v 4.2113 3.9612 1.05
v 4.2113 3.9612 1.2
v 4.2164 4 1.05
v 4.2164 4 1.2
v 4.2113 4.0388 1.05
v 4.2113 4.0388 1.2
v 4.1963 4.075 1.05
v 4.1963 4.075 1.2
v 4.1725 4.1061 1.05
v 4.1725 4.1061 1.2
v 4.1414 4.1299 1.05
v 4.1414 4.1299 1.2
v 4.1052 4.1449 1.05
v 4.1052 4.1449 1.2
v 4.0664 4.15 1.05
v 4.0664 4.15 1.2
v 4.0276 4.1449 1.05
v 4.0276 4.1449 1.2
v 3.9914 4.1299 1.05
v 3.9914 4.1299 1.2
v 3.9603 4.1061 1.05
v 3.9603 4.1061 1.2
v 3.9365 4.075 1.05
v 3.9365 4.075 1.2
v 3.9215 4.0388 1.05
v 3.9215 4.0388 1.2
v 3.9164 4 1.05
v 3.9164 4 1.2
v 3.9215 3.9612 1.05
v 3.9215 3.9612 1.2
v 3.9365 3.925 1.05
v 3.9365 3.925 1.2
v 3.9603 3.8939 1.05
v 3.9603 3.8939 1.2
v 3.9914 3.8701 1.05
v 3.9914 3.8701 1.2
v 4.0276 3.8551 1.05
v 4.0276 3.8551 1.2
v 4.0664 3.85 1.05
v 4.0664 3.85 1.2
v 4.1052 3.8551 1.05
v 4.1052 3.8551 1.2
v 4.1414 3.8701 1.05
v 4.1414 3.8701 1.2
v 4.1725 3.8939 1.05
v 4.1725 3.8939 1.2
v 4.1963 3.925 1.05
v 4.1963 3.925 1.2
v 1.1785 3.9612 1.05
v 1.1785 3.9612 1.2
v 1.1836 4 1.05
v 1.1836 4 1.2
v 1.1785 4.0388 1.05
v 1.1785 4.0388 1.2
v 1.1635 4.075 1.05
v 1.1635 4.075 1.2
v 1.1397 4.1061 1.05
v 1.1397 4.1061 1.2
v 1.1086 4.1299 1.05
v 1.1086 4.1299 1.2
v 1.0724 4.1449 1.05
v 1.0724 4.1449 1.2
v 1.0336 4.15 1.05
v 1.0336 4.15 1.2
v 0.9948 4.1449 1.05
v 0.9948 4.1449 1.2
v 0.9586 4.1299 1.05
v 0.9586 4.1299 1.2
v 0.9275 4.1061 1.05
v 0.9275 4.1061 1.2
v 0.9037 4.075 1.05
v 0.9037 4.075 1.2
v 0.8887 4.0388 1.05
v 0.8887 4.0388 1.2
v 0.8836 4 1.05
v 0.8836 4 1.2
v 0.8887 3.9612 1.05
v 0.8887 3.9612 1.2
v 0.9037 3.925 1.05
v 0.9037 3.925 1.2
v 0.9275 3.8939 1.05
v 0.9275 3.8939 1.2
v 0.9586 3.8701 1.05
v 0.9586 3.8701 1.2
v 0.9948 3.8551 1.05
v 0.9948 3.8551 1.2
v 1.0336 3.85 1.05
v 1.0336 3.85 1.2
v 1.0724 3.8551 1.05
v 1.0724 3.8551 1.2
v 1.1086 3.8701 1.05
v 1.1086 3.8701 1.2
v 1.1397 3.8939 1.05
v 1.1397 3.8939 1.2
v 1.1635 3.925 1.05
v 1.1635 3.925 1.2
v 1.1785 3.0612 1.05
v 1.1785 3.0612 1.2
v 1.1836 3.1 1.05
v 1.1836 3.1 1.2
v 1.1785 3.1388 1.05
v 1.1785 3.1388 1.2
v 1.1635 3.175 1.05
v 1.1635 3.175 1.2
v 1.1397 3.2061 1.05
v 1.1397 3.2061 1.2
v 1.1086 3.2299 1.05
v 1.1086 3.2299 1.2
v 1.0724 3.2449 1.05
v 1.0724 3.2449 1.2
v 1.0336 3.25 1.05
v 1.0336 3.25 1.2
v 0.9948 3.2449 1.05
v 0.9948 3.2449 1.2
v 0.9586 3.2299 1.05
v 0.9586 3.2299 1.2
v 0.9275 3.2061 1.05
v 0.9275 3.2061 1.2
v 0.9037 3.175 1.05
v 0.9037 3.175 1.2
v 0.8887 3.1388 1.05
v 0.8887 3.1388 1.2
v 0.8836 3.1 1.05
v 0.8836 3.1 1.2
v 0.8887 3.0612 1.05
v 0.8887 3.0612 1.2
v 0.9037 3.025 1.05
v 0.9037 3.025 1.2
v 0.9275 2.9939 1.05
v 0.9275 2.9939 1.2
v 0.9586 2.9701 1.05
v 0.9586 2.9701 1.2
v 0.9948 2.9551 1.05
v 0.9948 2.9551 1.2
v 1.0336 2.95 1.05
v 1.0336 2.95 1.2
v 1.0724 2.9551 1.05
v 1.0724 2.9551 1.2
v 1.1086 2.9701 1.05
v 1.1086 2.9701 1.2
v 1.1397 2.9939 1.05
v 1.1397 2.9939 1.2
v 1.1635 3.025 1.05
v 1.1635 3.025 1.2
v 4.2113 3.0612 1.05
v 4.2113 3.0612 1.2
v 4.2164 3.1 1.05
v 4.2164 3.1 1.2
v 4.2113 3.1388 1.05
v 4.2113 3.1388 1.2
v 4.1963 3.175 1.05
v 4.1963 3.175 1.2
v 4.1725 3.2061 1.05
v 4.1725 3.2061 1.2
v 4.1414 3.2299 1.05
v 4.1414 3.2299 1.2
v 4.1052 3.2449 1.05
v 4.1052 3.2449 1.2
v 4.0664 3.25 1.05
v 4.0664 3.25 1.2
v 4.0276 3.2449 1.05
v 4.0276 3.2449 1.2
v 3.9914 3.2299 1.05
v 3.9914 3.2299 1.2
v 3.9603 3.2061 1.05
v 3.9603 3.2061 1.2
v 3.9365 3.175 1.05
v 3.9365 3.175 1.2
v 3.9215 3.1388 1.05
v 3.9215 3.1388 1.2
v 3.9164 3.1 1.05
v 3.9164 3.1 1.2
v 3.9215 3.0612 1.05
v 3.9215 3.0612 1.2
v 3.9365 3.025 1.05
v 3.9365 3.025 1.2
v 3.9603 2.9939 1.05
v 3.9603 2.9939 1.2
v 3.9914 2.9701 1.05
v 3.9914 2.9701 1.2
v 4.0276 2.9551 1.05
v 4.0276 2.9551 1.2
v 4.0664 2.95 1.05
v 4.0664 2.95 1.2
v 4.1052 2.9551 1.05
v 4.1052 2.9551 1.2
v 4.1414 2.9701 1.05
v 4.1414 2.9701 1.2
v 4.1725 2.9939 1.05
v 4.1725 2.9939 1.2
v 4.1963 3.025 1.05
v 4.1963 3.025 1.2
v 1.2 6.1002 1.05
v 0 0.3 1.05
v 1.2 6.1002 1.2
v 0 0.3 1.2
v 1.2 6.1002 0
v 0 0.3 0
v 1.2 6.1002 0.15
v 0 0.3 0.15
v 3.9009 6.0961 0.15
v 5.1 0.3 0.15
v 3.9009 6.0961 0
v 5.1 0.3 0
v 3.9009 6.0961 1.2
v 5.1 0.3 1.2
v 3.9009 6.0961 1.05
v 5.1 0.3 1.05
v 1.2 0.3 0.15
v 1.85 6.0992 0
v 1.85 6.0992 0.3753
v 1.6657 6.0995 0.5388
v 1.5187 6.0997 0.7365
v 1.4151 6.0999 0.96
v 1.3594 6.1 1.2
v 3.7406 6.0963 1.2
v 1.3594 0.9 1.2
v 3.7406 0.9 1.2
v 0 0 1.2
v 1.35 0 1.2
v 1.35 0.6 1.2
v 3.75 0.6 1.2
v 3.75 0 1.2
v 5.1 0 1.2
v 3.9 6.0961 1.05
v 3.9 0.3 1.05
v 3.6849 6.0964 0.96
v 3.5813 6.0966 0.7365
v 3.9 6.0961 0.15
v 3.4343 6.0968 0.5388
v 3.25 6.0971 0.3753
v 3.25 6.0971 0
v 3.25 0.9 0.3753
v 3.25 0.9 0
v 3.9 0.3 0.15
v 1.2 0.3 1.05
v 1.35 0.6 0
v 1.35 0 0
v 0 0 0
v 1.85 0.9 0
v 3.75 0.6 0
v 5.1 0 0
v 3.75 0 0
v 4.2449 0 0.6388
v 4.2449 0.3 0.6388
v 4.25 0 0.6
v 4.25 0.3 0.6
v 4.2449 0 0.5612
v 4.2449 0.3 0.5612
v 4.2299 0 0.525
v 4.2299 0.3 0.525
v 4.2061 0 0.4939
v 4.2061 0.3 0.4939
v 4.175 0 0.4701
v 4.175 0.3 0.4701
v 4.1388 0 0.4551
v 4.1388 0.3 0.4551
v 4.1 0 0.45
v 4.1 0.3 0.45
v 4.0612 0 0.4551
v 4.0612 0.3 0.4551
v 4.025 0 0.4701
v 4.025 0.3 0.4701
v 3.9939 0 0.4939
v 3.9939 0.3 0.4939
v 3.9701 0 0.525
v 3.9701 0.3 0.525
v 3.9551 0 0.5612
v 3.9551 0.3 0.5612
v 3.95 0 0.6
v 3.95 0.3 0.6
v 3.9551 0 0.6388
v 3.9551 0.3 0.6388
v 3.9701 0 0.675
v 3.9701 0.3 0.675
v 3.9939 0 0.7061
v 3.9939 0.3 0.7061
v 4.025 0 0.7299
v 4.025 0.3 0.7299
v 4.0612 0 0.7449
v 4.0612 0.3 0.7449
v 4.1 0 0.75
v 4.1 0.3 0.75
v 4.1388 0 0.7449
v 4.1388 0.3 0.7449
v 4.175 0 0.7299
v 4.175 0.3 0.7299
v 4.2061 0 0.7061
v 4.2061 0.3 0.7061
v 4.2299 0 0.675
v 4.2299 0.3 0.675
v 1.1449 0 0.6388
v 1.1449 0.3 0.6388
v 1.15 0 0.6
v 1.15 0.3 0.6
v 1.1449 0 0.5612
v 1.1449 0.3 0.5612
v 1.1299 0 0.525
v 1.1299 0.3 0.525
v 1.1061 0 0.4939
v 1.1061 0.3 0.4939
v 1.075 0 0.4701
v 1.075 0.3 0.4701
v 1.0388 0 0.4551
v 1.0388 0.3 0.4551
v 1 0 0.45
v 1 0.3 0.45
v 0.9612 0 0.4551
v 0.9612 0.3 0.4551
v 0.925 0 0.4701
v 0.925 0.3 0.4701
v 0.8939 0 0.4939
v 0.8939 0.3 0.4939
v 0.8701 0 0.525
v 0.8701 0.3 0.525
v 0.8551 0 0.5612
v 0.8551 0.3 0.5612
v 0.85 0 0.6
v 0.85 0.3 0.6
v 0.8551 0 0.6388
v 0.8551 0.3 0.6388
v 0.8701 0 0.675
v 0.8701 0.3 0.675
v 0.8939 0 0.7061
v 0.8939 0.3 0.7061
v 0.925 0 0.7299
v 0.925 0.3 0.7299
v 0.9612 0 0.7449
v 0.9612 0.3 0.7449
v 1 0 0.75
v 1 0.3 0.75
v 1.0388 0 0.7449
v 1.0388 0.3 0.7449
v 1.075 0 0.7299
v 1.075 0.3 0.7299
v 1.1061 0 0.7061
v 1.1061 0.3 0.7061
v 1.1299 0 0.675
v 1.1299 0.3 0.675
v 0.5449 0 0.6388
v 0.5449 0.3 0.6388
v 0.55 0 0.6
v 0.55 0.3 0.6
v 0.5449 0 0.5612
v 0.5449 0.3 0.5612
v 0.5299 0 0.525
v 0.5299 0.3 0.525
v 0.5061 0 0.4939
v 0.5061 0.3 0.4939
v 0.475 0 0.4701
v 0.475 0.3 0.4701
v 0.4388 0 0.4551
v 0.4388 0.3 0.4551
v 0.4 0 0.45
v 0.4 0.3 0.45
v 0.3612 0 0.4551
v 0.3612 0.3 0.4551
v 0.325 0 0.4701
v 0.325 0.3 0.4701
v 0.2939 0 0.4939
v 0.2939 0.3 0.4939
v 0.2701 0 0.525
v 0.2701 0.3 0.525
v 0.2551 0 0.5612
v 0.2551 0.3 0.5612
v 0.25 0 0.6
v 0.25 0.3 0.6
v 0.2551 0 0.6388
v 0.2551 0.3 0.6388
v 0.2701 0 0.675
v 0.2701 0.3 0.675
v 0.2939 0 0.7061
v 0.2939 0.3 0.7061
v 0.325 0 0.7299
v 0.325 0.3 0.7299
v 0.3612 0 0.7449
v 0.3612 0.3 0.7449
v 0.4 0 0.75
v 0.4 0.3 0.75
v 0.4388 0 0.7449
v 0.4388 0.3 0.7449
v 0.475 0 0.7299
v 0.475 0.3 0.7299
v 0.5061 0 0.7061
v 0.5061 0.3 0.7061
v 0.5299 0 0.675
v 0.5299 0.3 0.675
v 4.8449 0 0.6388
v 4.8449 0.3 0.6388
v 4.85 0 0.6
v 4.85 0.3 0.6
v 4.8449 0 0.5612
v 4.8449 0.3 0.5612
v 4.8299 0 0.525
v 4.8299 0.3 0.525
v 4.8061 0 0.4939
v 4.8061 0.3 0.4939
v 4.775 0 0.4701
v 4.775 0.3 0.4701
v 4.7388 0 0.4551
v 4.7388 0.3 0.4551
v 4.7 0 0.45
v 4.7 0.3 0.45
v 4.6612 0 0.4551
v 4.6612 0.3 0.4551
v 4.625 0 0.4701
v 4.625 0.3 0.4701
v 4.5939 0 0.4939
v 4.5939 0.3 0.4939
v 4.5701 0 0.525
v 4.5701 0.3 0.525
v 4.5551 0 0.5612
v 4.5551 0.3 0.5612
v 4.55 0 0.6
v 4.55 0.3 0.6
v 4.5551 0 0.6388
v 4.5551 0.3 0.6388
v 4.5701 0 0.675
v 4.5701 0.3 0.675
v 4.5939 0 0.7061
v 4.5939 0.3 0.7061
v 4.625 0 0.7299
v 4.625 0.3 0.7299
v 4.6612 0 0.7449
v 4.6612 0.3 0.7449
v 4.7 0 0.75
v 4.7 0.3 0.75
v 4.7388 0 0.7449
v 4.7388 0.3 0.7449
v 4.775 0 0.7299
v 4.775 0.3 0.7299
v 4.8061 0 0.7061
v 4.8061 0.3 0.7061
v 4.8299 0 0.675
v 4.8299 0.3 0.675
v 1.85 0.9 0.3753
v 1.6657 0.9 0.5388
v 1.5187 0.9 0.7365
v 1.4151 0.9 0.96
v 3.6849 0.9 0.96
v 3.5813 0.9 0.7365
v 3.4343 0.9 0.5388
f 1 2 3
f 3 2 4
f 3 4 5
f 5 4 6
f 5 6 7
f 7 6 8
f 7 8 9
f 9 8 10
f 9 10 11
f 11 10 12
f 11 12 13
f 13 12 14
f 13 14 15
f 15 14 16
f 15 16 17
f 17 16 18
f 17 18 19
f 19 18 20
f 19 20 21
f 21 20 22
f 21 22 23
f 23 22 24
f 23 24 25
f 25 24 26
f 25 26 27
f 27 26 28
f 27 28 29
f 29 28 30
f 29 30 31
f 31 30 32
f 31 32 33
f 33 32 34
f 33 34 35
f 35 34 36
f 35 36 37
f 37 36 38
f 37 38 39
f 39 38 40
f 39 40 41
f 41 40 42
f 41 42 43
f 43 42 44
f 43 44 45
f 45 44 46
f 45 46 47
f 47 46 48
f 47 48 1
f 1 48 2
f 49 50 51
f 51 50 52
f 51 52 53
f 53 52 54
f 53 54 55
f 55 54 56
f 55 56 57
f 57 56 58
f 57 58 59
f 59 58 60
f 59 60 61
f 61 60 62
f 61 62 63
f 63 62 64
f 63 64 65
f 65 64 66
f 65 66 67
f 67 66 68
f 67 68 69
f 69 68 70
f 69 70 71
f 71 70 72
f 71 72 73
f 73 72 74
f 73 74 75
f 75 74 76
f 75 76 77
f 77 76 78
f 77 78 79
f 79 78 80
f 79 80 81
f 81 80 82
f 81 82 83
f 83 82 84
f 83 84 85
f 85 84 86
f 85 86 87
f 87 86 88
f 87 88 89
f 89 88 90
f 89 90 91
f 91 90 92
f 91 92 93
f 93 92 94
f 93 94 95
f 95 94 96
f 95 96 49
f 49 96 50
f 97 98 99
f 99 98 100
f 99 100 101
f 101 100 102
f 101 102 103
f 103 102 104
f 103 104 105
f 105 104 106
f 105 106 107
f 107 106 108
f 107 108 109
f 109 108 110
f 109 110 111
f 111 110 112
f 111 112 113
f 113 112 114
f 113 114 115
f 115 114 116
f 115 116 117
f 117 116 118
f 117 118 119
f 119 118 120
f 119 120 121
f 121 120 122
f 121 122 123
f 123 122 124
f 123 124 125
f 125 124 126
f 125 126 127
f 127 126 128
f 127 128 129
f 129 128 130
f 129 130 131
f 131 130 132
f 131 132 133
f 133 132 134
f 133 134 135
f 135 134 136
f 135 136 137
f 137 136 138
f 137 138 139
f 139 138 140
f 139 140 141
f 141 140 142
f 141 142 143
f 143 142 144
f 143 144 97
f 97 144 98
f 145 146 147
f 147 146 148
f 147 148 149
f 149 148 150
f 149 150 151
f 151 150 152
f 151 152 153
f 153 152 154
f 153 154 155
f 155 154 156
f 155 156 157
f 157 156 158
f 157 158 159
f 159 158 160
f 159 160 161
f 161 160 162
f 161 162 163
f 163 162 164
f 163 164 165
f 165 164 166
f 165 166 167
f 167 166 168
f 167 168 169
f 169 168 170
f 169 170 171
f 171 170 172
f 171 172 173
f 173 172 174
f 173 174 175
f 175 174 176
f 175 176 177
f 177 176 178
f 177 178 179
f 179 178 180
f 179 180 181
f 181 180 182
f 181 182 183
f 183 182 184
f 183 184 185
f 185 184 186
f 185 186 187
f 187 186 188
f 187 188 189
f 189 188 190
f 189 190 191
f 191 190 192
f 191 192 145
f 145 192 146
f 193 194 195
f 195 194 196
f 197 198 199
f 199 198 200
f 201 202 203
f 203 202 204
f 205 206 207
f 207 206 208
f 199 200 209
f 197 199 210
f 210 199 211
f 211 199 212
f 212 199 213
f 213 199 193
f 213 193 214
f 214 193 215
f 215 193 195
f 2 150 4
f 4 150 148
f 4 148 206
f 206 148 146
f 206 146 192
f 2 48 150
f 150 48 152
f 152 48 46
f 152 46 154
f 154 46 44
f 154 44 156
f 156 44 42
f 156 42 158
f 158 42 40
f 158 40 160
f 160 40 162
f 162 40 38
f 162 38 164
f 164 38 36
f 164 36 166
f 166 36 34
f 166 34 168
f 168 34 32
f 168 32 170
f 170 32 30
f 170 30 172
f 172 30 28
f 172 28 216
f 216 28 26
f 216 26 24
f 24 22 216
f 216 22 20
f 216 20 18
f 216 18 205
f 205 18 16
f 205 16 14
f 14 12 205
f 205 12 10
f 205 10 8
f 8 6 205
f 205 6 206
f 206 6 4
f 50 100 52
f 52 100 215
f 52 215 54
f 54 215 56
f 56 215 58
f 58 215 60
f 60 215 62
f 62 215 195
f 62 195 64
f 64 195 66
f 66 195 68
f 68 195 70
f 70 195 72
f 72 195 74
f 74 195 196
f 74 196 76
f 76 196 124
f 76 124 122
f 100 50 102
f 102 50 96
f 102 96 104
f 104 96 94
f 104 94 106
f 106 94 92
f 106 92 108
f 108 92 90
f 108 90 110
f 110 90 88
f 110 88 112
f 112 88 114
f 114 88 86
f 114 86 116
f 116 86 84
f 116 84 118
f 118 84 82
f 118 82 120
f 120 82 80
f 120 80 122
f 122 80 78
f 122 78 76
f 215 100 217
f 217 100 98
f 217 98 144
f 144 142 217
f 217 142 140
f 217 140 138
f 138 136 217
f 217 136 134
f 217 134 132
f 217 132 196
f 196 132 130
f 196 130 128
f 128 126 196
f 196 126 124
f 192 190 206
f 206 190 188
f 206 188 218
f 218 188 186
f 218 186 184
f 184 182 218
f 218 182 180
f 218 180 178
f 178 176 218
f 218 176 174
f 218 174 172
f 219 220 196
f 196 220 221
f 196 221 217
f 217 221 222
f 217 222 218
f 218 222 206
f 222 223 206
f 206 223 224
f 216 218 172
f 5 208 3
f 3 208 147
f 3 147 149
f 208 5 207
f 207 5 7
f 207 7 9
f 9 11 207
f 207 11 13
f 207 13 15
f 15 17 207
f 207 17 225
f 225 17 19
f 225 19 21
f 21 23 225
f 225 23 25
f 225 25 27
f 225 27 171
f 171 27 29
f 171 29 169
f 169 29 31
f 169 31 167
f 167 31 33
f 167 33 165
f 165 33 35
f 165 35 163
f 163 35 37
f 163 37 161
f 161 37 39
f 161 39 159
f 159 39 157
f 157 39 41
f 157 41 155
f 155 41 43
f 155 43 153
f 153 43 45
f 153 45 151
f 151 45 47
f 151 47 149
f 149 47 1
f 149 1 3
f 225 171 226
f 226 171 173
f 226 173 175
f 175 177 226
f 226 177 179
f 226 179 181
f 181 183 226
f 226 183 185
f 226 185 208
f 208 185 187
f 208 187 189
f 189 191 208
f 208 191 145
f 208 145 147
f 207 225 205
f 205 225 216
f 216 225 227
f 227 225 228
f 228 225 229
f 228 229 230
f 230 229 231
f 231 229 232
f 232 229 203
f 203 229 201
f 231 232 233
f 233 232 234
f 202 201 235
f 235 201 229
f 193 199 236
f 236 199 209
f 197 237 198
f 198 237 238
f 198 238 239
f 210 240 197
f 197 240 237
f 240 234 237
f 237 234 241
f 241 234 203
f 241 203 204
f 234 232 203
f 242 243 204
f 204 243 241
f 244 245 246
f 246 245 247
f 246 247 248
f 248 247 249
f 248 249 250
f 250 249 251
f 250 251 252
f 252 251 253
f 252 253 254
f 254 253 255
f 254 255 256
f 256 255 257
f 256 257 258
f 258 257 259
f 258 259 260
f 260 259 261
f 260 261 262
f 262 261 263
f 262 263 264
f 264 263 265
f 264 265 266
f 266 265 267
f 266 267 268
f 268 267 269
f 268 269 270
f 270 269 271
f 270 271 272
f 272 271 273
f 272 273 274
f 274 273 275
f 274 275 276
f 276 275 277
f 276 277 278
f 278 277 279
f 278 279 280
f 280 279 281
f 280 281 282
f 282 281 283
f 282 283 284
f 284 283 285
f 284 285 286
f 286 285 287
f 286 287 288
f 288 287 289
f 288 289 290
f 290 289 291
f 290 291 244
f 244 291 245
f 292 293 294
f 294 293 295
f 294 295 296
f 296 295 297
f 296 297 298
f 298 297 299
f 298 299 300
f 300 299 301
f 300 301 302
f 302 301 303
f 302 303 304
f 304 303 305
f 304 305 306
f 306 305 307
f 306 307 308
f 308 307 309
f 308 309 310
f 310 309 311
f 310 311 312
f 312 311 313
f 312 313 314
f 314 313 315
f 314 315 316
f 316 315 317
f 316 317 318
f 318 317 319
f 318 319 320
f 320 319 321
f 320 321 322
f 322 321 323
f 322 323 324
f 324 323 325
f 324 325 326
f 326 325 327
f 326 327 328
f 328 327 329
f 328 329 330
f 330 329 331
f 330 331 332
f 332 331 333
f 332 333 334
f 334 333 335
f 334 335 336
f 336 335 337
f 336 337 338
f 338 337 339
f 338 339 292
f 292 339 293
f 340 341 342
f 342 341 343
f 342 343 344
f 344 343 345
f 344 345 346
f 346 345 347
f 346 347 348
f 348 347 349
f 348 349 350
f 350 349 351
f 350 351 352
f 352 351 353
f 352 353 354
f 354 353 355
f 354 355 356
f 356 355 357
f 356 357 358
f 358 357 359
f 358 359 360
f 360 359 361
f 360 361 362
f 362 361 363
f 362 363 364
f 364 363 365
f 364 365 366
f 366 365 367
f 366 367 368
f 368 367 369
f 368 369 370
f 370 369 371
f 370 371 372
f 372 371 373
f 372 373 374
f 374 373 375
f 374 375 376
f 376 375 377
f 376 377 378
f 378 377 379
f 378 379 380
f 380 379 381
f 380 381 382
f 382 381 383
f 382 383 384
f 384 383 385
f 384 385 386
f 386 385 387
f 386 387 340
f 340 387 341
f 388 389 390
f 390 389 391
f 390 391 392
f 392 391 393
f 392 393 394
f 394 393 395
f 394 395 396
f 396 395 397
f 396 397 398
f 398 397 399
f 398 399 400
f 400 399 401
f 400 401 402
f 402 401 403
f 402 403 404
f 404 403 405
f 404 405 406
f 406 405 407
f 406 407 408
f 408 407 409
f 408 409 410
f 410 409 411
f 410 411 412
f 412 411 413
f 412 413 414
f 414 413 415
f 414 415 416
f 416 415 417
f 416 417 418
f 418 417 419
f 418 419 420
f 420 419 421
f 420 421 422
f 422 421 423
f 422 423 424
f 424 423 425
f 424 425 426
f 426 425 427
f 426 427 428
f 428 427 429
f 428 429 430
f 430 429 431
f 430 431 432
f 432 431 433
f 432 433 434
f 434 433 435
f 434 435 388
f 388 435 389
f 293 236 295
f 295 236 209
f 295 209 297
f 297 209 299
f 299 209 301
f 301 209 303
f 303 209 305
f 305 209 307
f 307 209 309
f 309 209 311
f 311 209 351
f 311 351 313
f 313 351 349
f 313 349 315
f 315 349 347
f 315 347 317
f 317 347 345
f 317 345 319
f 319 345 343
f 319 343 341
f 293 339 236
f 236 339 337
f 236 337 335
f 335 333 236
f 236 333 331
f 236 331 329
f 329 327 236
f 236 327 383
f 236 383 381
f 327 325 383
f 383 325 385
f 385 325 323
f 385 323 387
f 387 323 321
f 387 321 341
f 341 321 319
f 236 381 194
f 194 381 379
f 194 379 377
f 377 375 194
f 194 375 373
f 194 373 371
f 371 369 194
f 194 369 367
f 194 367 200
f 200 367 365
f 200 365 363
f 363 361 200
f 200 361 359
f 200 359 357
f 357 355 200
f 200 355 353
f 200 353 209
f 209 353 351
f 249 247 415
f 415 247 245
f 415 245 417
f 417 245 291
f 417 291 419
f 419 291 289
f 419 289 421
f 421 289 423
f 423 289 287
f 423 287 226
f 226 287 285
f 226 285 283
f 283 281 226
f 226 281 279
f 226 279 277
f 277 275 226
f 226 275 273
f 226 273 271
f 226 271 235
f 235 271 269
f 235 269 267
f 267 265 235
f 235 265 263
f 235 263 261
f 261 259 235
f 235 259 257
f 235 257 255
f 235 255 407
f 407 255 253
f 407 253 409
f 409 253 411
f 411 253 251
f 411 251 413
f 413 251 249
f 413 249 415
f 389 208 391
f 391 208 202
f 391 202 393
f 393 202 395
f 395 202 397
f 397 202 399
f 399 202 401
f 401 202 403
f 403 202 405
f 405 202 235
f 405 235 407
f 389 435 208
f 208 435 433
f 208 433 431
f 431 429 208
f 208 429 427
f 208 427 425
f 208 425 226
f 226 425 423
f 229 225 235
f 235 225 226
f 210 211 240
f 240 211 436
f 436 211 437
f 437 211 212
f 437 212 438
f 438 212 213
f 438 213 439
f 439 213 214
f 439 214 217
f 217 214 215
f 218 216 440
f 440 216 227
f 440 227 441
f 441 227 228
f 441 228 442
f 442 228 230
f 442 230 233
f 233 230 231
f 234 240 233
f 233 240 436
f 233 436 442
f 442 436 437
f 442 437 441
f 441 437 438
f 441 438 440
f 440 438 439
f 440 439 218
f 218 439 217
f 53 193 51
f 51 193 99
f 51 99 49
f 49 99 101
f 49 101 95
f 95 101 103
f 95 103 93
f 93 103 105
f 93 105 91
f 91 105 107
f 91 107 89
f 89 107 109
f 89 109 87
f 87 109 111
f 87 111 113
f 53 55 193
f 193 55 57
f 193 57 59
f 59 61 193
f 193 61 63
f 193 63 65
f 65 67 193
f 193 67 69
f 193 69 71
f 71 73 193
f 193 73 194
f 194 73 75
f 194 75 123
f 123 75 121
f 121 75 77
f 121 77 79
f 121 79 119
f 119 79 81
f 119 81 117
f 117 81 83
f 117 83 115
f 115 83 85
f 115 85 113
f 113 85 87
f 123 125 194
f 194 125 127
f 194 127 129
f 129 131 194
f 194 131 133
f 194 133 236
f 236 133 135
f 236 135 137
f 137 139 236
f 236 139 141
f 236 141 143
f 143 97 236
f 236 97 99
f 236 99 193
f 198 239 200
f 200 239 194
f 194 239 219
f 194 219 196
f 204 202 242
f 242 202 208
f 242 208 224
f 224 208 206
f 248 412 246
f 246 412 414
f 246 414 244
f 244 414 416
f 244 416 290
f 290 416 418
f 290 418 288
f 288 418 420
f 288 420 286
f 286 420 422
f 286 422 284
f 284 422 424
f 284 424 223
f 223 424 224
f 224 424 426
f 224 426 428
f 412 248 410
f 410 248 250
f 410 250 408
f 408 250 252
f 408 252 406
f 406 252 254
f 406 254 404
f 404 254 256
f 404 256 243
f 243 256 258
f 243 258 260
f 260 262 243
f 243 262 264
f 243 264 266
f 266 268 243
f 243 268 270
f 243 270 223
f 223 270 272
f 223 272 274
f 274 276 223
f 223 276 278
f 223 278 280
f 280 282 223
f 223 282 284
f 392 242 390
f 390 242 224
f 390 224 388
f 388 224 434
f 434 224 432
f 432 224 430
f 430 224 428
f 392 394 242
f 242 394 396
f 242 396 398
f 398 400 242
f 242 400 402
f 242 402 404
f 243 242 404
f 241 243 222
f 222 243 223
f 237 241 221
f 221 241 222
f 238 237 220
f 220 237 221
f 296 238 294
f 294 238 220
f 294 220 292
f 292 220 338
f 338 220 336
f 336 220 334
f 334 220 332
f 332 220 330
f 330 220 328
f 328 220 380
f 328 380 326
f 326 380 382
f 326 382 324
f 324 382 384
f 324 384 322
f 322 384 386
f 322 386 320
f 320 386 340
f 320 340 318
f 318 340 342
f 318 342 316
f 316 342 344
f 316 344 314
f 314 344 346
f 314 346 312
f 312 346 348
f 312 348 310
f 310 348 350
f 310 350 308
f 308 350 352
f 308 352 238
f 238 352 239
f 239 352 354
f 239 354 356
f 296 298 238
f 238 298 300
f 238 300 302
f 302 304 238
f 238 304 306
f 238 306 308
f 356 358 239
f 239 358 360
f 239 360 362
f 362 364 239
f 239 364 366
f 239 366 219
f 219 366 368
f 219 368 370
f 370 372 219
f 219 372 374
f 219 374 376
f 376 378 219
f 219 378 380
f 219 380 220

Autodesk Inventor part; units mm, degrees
ref_plane "YZ Plane" through (0, 0, 0) normal (1, 0, 0) x (0, 1, 0)
ref_plane "XZ Plane" through (0, 0, 0) normal (0, 1, 0) x (-1, 0, 0)
ref_plane "XY Plane" through (0, 0, 0) normal (0, 0, 1) x (1, 0, 0)
sketch "Boceto1" plane through (0, 0, 0) normal (0, 0, 1) x (1, 0, 0)
  line L0 (0, 0) -> (0, 0.3)
  line L1 (1.35, 0.9) -> (1.35, 11.3)
  line L2 (1.35, 11.3) -> (0, 0.3)
  line L3 (3.75, 0.9) -> (3.75, 11.3)
  line L4 (3.75, 11.3) -> (5.1, 0.3)
  line L5 (5.1, 0) -> (5.1, 0.3)
  line L6 (1.35, 0.9) -> (3.75, 0.9)
  line L7 (3.75, 0.6) -> (1.35, 0.6)
  line L8 (3.75, 0.6) -> (3.75, 0)
  line L9 (1.35, 0.6) -> (1.35, 0)
  line L10 (0, 0) -> (1.35, 0)
  line L11 (3.75, 0) -> (5.1, 0)
  line L12 (1.35, 11.3) -> (1.85, 11.3)
  line L13 (1.85, 11.3) -> (1.85, 0.9)
  line L14 (3.75, 11.3) -> (3.25, 11.3)
  line L15 (3.25, 11.3) -> (3.25, 0.9)
extrude "Extrusión1" add sketch "Boceto1" along normal blind 1.2 contours L0 L2 L1 L6 L3 L4 L5 L11 L8 L7 L9 L10
sketch "Boceto2" plane through (1.35, 0.9, 0) normal (0, 1, 0) x (1, 0, 0)
  line L0 (2.55, 0) -> (-0.15, 0)
  line L1 (-0.15, 0) -> (-0.15, -1.2)
  line L2 (-0.15, -1.2) -> (2.55, -1.2)
  line L3 (2.55, -1.2) -> (2.55, 0)
  line L4 (0, 0) -> (0, -1.2)
  line L5 (2.4, 0) -> (2.4, -1.2)
  line L6 (-0.15, -1.2) -> (-1.35, -1.2)
  line L7 (-1.35, -1.2) -> (-1.35, 0)
  line L8 (-1.35, 0) -> (-0.15, 0)
  line L9 (-0.15, 0) -> (-0.15, -0.15)
  line L10 (-0.15, -0.15) -> (-1.35, -0.15)
  line L11 (-1.35, -1.05) -> (-0.15, -1.05)
  line L12 (2.55, -1.2) -> (3.75, -1.2)
  line L13 (3.75, -1.2) -> (3.75, 0)
  line L14 (3.75, 0) -> (2.55, 0)
  line L15 (2.55, -0.15) -> (3.75, -0.15)
  line L16 (3.75, -1.05) -> (2.55, -1.05)
  line L17 (2.4, 0) -> (1.9, 0)
  line L18 (1.9, 0) -> (1.9, -0.15)
  line L19 (0, 0) -> (0.5, 0)
  line L20 (0.5, 0) -> (0.5, -0.15)
  arc A0 (2.3906, -1.2) -> (1.9, -0.3753) centre (1.2, -1.35) ccw
  line L21 (0, -1.2) -> (0.0094, -1.2)
  line L22 (0.5, -0.15) -> (0.5, -0.3753)
  line L23 (1.9, -0.15) -> (1.9, -0.3753)
  line L24 (2.4, -1.2) -> (2.3906, -1.2)
  arc A1 (0.5, -0.3753) -> (0.0094, -1.2) centre (1.2, -1.35) ccw
  line L25 (0, 0) -> (-1.35, 0) projected
  line L26 (-1.35, 0) -> (-1.35, -1.2) projected
  line L27 (0, -1.2) -> (-1.35, -1.2) projected
  line L28 (0, 0) -> (0, -1.2) projected
  line L29 (3.75, 0) -> (2.4, 0) projected
  line L30 (2.4, 0) -> (2.4, -1.2) projected
  line L31 (3.75, -1.2) -> (2.4, -1.2) projected
  line L32 (3.75, 0) -> (3.75, -1.2) projected
  line L33 (2.4, 0) -> (0, 0) projected
  line L34 (0, 0) -> (0, -1.2) projected
  line L35 (2.4, -1.2) -> (0, -1.2) projected
  line L36 (2.4, 0) -> (2.4, -1.2) projected
extrude "Extrusión2" cut sketch "Boceto2" along normal blind 12 contours L15 L13 L16 L3 | L1 L11 L7 L10
sketch "Boceto3" plane through (1.35, 0.9, 0) normal (0, 1, 0) x (1, 0, 0)
  line L0 (2.55, 0) -> (-0.15, 0)
  line L1 (-0.15, 0) -> (-0.15, -1.2)
  line L2 (-0.15, -1.2) -> (2.55, -1.2)
  line L3 (2.55, -1.2) -> (2.55, 0)
  line L4 (0, 0) -> (0, -1.2)
  line L5 (2.4, 0) -> (2.4, -1.2)
  line L6 (-0.15, -1.2) -> (-1.35, -1.2)
  line L7 (-1.35, -1.2) -> (-1.35, 0)
  line L8 (-1.35, 0) -> (-0.15, 0)
  line L9 (-0.15, 0) -> (-0.15, -0.15)
  line L10 (-0.15, -0.15) -> (-1.35, -0.15)
  line L11 (-1.35, -1.05) -> (-0.15, -1.05)
  line L12 (2.55, -1.2) -> (3.75, -1.2)
  line L13 (3.75, -1.2) -> (3.75, 0)
  line L14 (3.75, 0) -> (2.55, 0)
  line L15 (2.55, -0.15) -> (3.75, -0.15)
  line L16 (3.75, -1.05) -> (2.55, -1.05)
  line L17 (2.4, 0) -> (1.9, 0)
  line L18 (1.9, 0) -> (1.9, -0.15)
  line L19 (0, 0) -> (0.5, 0)
  line L20 (0.5, 0) -> (0.5, -0.15)
  arc A0 (2.3906, -1.2) -> (1.9, -0.3753) centre (1.2, -1.35) ccw
  line L21 (0, -1.2) -> (0.0094, -1.2)
  line L22 (0.5, -0.15) -> (0.5, -0.3753)
  line L23 (1.9, -0.15) -> (1.9, -0.3753)
  line L24 (2.4, -1.2) -> (2.3906, -1.2)
  arc A1 (0.5, -0.3753) -> (0.0094, -1.2) centre (1.2, -1.35) ccw
  line L25 (0, 0) -> (-1.35, 0)
  line L26 (-1.35, 0) -> (-1.35, -1.2)
  line L27 (0, -1.2) -> (-1.35, -1.2)
  line L28 (0, 0) -> (0, -1.2)
  line L29 (3.75, 0) -> (2.4, 0)
  line L30 (2.4, 0) -> (2.4, -1.2)
  line L31 (3.75, -1.2) -> (2.4, -1.2)
  line L32 (3.75, 0) -> (3.75, -1.2)
  line L33 (2.4, 0) -> (0, 0)
  line L34 (0, 0) -> (0, -1.2)
  line L35 (2.4, -1.2) -> (0, -1.2)
  line L36 (2.4, 0) -> (2.4, -1.2)
extrude "Extrusión3" add sketch "Boceto3" along normal blind 10.4 contours L5 L2 A0 L23 L18 L0 | L20 L22 A1 L2 L4 L0
sketch "Boceto4" plane through (1.35, 11.3, 0) normal (0, 1, 0) x (1, 0, 0)
  line L0 (0, 0) -> (0, -1.2) projected
  line L1 (0, -1.2) -> (0.0094, -1.2) projected
  arc A0 (0.5, -0.3753) -> (0.0094, -1.2) centre (1.2, -1.35) ccw projected
  line L2 (0.5, -0.3753) -> (0.5, 0) projected
  line L3 (0.5, 0) -> (0, 0) projected
  line L4 (2.4, 0) -> (1.9, 0) projected
  line L5 (1.9, 0) -> (1.9, -0.3753) projected
  arc A1 (2.3906, -1.2) -> (1.9, -0.3753) centre (1.2, -1.35) ccw projected
  line L6 (2.3906, -1.2) -> (2.4, -1.2) projected
  line L7 (2.4, 0) -> (2.4, -1.2) projected
  line L8 (2.55, 0) -> (-0.15, 0)
  line L9 (-0.15, 0) -> (-0.15, -1.2)
  line L10 (-0.15, -1.2) -> (2.55, -1.2)
  line L11 (2.55, -1.2) -> (2.55, 0)
  line L12 (0, 0) -> (0, -1.2)
  line L13 (2.4, 0) -> (2.4, -1.2)
  line L14 (-0.15, -1.2) -> (-1.35, -1.2)
  line L15 (-1.35, -1.2) -> (-1.35, 0)
  line L16 (-1.35, 0) -> (-0.15, 0)
  line L17 (-0.15, 0) -> (-0.15, -0.15)
  line L18 (-0.15, -0.15) -> (-1.35, -0.15)
  line L19 (-1.35, -1.05) -> (-0.15, -1.05)
  line L20 (2.55, -1.2) -> (3.75, -1.2)
  line L21 (3.75, -1.2) -> (3.75, 0)
  line L22 (3.75, 0) -> (2.55, 0)
  line L23 (2.55, -0.15) -> (3.75, -0.15)
  line L24 (3.75, -1.05) -> (2.55, -1.05)
  line L25 (2.4, 0) -> (1.9, 0)
  line L26 (1.9, 0) -> (1.9, -0.15)
  line L27 (0, 0) -> (0.5, 0)
  line L28 (0.5, 0) -> (0.5, -0.15)
  arc A2 (2.3906, -1.2) -> (1.9, -0.3753) centre (1.2, -1.35) ccw
  line L29 (0, -1.2) -> (0.0094, -1.2)
  line L30 (0.5, -0.15) -> (0.5, -0.3753)
  line L31 (1.9, -0.15) -> (1.9, -0.3753)
  line L32 (2.4, -1.2) -> (2.3906, -1.2)
  arc A3 (0.5, -0.3753) -> (0.0094, -1.2) centre (1.2, -1.35) ccw
  point P0 (-1.35, 0)
extrude "Extrusión4" add sketch "Boceto4" against normal blind 10.4 contours L0 L10 L9 L8 | L8 L11 L10 L7
sketch "Boceto5" plane through (1.35, 11.3, 0) normal (0, 1, 0) x (1, 0, 0)
  line L0 (2.55, 0) -> (-0.15, 0)
  line L1 (-0.15, 0) -> (-0.15, -1.2)
  line L2 (-0.15, -1.2) -> (2.55, -1.2)
  line L3 (0, 0) -> (0, -1.2)
  line L4 (2.4, 0) -> (2.4, -1.2)
  line L5 (0, -1.2) -> (0.0094, -1.2)
  line L6 (0.5, -0.15) -> (0.5, -0.3753)
  line L7 (0, 0) -> (0.5, 0)
  line L8 (0.5, 0) -> (0.5, -0.15)
  arc A0 (0.5, -0.3753) -> (0.0094, -1.2) centre (1.2, -1.35) ccw
  line L9 (2.4, -1.2) -> (0, -1.2)
  line L10 (2.4, 0) -> (0, 0)
  line L11 (1.9, 0) -> (1.9, -0.15)
  line L12 (2.4, 0) -> (1.9, 0)
  line L13 (-0.15, -1.2) -> (-1.35, -1.2)
  line L14 (-1.35, -1.2) -> (-1.35, 0)
  line L15 (-1.35, 0) -> (-0.15, 0)
  line L16 (-0.15, 0) -> (-0.15, -0.15)
  line L17 (0, 0) -> (0, -1.2)
  line L18 (0, 0) -> (-1.35, 0)
  line L19 (-0.15, -0.15) -> (-1.35, -0.15)
  line L20 (-1.35, -1.05) -> (-0.15, -1.05)
  line L21 (-1.35, 0) -> (-1.35, -1.2)
  line L22 (0, -1.2) -> (-1.35, -1.2)
  line L23 (0, 0) -> (0, -1.2)
  line L24 (2.55, -1.2) -> (2.55, 0)
  line L25 (2.55, -1.2) -> (3.75, -1.2)
  line L26 (3.75, -1.2) -> (3.75, 0)
  line L27 (3.75, 0) -> (2.55, 0)
  line L28 (2.55, -0.15) -> (3.75, -0.15)
  line L29 (3.75, -1.05) -> (2.55, -1.05)
  line L30 (1.9, -0.15) -> (1.9, -0.3753)
  arc A1 (2.3906, -1.2) -> (1.9, -0.3753) centre (1.2, -1.35) ccw
  line L31 (2.4, -1.2) -> (2.3906, -1.2)
  line L32 (2.4, 0) -> (2.4, -1.2)
  line L33 (2.4, 0) -> (2.4, -1.2)
  line L34 (3.75, -1.2) -> (2.4, -1.2)
  line L35 (3.75, 0) -> (3.75, -1.2)
  line L36 (3.75, 0) -> (2.4, 0)
extrude "Extrusión5" cut sketch "Boceto5" against normal blind 11 contours L28 L26 L29 L24 | L1 L20 L14 L19
sketch "Boceto6" plane through (1.35, 0.3, 0) normal (0, 1, 0) x (1, 0, 0)
  line L0 (2.55, 0) -> (-0.15, 0)
  line L1 (-0.15, 0) -> (-0.15, -1.2)
  line L2 (-0.15, -1.2) -> (2.55, -1.2)
  line L3 (2.55, -1.2) -> (2.55, 0)
  line L4 (0, 0) -> (0, -1.2)
  line L5 (2.4, 0) -> (2.4, -1.2)
  line L6 (-0.15, -1.2) -> (-1.35, -1.2)
  line L7 (-1.35, -1.2) -> (-1.35, 0)
  line L8 (-1.35, 0) -> (-0.15, 0)
  line L9 (-0.15, 0) -> (-0.15, -0.15)
  line L10 (-0.15, -0.15) -> (-1.35, -0.15)
  line L11 (-1.35, -1.05) -> (-0.15, -1.05)
  line L12 (2.55, -1.2) -> (3.75, -1.2)
  line L13 (3.75, -1.2) -> (3.75, 0)
  line L14 (3.75, 0) -> (2.55, 0)
  line L15 (2.55, -0.15) -> (3.75, -0.15)
  line L16 (3.75, -1.05) -> (2.55, -1.05)
  line L17 (2.4, 0) -> (1.9, 0)
  line L18 (1.9, 0) -> (1.9, -0.15)
  line L19 (0, 0) -> (0.5, 0)
  line L20 (0.5, 0) -> (0.5, -0.15)
  arc A0 (2.3906, -1.2) -> (1.9, -0.3753) centre (1.2, -1.35) ccw
  line L21 (0, -1.2) -> (0.0094, -1.2)
  line L22 (0.5, -0.15) -> (0.5, -0.3753)
  line L23 (1.9, -0.15) -> (1.9, -0.3753)
  line L24 (2.4, -1.2) -> (2.3906, -1.2)
  arc A1 (0.5, -0.3753) -> (0.0094, -1.2) centre (1.2, -1.35) ccw
  circle A2 centre (2.75, -0.6) radius 0.15
  circle A3 centre (3.35, -0.6) radius 0.15
  circle A4 centre (-0.35, -0.6) radius 0.15
  circle A5 centre (-0.95, -0.6) radius 0.15
  line L25 (-1.35, 0) -> (-1.35, -0.15) projected
  line L26 (-1.35, -0.15) -> (-1.35, -1.05) projected
  line L27 (-1.35, -1.05) -> (-1.35, -1.2) projected
extrude "Extrusión6" cut sketch "Boceto6" against normal blind 10 contours A2 | A3 | A4 | A5
sketch "Boceto7" plane through (0, 0, 1.2) normal (0, 0, 1) x (1, 0, 0)
  line L0 (0, 0) -> (1.35, 0) projected
  line L1 (1.35, 0) -> (1.3594, 6.1)
  line L2 (1.3594, 0.9) -> (1.3594, 11.3) projected
  line L3 (1.3594, 6.1) -> (7.7947, 6.0901)
  line L4 (7.7947, 6.0901) -> (7.8047, 12.5901)
  line L5 (7.8047, 12.5901) -> (-2.1953, 12.6055)
  line L6 (-2.1953, 12.6055) -> (-2.2053, 6.1055)
  line L7 (-2.2053, 6.1055) -> (1.3594, 6.1)
  dimension "d12" = 6.1
  dimension "d13" = 6.5
  dimension "d14" = 10
extrude "Extrusión7" cut sketch "Boceto7" against normal blind 10
sketch "Boceto8" plane through (0, 0, 1.2) normal (0, 0, 1) x (1, 0, 0)
  line L0 (1.2, 6.1002) -> (1.2, 0.3) projected
  line L1 (3.9, 6.0961) -> (3.9, 0.3) projected
  line L2 (0, 0.3) -> (0, 0) projected
  line L3 (5.1, 0) -> (5.1, 0.3) projected
  line L4 (0, 0.3) -> (1.2, 6.1002)
  line L5 (1.2, 6.873) -> (1.2, 6.1002)
  line L6 (0, 0.3) -> (-0.3806, 0.3)
  line L7 (-0.3806, 0.3) -> (-0.3806, 6.873)
  line L8 (-0.3806, 6.873) -> (1.2, 6.873)
  line L9 (3.25, 0.9) -> (1.85, 0.9) projected
  line L10 (2.55, 0.9) -> (2.55, 4.8471)
  line L11 (3.9, 6.1002) -> (3.9, 0.3)
  line L12 (5.1, 0.3) -> (5.1, 0)
  line L13 (5.1, 0.3) -> (3.9, 6.1002)
  line L14 (3.9, 6.873) -> (3.9, 6.1002)
  line L15 (5.1, 0.3) -> (5.4806, 0.3)
  line L16 (5.4806, 0.3) -> (5.4806, 6.873)
  line L17 (5.4806, 6.873) -> (3.9, 6.873)
extrude "Extrusión8" cut sketch "Boceto8" against normal blind 10
sketch "Boceto9" plane through (0, 0, 1.2) normal (0, 0, 1) x (1, 0, 0)
  line L0 (0, 0) -> (0, 0.3)
  line L1 (1.35, 0.9) -> (1.35, 6.1)
  line L2 (1.2, 6.1) -> (0, 0.3)
  line L3 (3.75, 0.9) -> (3.75, 6.1)
  line L4 (3.9, 6.1) -> (5.1, 0.3)
  line L5 (5.1, 0) -> (5.1, 0.3)
  line L6 (1.35, 0.9) -> (3.75, 0.9)
  line L7 (3.75, 0.6) -> (1.35, 0.6)
  line L8 (3.75, 0.6) -> (3.75, 0)
  line L9 (1.35, 0.6) -> (1.35, 0)
  line L10 (0, 0) -> (1.35, 0)
  line L11 (3.75, 0) -> (5.1, 0)
  line L12 (1.85, 6.1) -> (1.85, 0.9)
  line L13 (3.25, 6.1) -> (3.25, 0.9)
  line L14 (1.2, 6.1) -> (1.85, 6.1)
  line L15 (3.25, 6.1) -> (3.75, 6.1)
  line L16 (1.35, 6.1) -> (1.2, 6.1)
  line L17 (3.75, 6.1) -> (3.9, 6.1)
  circle A0 centre (1.0336, 4) radius 0.15
  circle A1 centre (1.0336, 3.1) radius 0.15
  circle A2 centre (4.0664, 4) radius 0.15
  circle A3 centre (4.0664, 3.1) radius 0.15
  line L18 (1.35, 0.6) -> (3.75, 0.6) projected
  point P0 (0, 0)
extrude "Extrusión9" cut sketch "Boceto9" against normal blind 0.5 contours A0 | A1 | A2 | A3
properties part number "learnbotEncajeBateria"
